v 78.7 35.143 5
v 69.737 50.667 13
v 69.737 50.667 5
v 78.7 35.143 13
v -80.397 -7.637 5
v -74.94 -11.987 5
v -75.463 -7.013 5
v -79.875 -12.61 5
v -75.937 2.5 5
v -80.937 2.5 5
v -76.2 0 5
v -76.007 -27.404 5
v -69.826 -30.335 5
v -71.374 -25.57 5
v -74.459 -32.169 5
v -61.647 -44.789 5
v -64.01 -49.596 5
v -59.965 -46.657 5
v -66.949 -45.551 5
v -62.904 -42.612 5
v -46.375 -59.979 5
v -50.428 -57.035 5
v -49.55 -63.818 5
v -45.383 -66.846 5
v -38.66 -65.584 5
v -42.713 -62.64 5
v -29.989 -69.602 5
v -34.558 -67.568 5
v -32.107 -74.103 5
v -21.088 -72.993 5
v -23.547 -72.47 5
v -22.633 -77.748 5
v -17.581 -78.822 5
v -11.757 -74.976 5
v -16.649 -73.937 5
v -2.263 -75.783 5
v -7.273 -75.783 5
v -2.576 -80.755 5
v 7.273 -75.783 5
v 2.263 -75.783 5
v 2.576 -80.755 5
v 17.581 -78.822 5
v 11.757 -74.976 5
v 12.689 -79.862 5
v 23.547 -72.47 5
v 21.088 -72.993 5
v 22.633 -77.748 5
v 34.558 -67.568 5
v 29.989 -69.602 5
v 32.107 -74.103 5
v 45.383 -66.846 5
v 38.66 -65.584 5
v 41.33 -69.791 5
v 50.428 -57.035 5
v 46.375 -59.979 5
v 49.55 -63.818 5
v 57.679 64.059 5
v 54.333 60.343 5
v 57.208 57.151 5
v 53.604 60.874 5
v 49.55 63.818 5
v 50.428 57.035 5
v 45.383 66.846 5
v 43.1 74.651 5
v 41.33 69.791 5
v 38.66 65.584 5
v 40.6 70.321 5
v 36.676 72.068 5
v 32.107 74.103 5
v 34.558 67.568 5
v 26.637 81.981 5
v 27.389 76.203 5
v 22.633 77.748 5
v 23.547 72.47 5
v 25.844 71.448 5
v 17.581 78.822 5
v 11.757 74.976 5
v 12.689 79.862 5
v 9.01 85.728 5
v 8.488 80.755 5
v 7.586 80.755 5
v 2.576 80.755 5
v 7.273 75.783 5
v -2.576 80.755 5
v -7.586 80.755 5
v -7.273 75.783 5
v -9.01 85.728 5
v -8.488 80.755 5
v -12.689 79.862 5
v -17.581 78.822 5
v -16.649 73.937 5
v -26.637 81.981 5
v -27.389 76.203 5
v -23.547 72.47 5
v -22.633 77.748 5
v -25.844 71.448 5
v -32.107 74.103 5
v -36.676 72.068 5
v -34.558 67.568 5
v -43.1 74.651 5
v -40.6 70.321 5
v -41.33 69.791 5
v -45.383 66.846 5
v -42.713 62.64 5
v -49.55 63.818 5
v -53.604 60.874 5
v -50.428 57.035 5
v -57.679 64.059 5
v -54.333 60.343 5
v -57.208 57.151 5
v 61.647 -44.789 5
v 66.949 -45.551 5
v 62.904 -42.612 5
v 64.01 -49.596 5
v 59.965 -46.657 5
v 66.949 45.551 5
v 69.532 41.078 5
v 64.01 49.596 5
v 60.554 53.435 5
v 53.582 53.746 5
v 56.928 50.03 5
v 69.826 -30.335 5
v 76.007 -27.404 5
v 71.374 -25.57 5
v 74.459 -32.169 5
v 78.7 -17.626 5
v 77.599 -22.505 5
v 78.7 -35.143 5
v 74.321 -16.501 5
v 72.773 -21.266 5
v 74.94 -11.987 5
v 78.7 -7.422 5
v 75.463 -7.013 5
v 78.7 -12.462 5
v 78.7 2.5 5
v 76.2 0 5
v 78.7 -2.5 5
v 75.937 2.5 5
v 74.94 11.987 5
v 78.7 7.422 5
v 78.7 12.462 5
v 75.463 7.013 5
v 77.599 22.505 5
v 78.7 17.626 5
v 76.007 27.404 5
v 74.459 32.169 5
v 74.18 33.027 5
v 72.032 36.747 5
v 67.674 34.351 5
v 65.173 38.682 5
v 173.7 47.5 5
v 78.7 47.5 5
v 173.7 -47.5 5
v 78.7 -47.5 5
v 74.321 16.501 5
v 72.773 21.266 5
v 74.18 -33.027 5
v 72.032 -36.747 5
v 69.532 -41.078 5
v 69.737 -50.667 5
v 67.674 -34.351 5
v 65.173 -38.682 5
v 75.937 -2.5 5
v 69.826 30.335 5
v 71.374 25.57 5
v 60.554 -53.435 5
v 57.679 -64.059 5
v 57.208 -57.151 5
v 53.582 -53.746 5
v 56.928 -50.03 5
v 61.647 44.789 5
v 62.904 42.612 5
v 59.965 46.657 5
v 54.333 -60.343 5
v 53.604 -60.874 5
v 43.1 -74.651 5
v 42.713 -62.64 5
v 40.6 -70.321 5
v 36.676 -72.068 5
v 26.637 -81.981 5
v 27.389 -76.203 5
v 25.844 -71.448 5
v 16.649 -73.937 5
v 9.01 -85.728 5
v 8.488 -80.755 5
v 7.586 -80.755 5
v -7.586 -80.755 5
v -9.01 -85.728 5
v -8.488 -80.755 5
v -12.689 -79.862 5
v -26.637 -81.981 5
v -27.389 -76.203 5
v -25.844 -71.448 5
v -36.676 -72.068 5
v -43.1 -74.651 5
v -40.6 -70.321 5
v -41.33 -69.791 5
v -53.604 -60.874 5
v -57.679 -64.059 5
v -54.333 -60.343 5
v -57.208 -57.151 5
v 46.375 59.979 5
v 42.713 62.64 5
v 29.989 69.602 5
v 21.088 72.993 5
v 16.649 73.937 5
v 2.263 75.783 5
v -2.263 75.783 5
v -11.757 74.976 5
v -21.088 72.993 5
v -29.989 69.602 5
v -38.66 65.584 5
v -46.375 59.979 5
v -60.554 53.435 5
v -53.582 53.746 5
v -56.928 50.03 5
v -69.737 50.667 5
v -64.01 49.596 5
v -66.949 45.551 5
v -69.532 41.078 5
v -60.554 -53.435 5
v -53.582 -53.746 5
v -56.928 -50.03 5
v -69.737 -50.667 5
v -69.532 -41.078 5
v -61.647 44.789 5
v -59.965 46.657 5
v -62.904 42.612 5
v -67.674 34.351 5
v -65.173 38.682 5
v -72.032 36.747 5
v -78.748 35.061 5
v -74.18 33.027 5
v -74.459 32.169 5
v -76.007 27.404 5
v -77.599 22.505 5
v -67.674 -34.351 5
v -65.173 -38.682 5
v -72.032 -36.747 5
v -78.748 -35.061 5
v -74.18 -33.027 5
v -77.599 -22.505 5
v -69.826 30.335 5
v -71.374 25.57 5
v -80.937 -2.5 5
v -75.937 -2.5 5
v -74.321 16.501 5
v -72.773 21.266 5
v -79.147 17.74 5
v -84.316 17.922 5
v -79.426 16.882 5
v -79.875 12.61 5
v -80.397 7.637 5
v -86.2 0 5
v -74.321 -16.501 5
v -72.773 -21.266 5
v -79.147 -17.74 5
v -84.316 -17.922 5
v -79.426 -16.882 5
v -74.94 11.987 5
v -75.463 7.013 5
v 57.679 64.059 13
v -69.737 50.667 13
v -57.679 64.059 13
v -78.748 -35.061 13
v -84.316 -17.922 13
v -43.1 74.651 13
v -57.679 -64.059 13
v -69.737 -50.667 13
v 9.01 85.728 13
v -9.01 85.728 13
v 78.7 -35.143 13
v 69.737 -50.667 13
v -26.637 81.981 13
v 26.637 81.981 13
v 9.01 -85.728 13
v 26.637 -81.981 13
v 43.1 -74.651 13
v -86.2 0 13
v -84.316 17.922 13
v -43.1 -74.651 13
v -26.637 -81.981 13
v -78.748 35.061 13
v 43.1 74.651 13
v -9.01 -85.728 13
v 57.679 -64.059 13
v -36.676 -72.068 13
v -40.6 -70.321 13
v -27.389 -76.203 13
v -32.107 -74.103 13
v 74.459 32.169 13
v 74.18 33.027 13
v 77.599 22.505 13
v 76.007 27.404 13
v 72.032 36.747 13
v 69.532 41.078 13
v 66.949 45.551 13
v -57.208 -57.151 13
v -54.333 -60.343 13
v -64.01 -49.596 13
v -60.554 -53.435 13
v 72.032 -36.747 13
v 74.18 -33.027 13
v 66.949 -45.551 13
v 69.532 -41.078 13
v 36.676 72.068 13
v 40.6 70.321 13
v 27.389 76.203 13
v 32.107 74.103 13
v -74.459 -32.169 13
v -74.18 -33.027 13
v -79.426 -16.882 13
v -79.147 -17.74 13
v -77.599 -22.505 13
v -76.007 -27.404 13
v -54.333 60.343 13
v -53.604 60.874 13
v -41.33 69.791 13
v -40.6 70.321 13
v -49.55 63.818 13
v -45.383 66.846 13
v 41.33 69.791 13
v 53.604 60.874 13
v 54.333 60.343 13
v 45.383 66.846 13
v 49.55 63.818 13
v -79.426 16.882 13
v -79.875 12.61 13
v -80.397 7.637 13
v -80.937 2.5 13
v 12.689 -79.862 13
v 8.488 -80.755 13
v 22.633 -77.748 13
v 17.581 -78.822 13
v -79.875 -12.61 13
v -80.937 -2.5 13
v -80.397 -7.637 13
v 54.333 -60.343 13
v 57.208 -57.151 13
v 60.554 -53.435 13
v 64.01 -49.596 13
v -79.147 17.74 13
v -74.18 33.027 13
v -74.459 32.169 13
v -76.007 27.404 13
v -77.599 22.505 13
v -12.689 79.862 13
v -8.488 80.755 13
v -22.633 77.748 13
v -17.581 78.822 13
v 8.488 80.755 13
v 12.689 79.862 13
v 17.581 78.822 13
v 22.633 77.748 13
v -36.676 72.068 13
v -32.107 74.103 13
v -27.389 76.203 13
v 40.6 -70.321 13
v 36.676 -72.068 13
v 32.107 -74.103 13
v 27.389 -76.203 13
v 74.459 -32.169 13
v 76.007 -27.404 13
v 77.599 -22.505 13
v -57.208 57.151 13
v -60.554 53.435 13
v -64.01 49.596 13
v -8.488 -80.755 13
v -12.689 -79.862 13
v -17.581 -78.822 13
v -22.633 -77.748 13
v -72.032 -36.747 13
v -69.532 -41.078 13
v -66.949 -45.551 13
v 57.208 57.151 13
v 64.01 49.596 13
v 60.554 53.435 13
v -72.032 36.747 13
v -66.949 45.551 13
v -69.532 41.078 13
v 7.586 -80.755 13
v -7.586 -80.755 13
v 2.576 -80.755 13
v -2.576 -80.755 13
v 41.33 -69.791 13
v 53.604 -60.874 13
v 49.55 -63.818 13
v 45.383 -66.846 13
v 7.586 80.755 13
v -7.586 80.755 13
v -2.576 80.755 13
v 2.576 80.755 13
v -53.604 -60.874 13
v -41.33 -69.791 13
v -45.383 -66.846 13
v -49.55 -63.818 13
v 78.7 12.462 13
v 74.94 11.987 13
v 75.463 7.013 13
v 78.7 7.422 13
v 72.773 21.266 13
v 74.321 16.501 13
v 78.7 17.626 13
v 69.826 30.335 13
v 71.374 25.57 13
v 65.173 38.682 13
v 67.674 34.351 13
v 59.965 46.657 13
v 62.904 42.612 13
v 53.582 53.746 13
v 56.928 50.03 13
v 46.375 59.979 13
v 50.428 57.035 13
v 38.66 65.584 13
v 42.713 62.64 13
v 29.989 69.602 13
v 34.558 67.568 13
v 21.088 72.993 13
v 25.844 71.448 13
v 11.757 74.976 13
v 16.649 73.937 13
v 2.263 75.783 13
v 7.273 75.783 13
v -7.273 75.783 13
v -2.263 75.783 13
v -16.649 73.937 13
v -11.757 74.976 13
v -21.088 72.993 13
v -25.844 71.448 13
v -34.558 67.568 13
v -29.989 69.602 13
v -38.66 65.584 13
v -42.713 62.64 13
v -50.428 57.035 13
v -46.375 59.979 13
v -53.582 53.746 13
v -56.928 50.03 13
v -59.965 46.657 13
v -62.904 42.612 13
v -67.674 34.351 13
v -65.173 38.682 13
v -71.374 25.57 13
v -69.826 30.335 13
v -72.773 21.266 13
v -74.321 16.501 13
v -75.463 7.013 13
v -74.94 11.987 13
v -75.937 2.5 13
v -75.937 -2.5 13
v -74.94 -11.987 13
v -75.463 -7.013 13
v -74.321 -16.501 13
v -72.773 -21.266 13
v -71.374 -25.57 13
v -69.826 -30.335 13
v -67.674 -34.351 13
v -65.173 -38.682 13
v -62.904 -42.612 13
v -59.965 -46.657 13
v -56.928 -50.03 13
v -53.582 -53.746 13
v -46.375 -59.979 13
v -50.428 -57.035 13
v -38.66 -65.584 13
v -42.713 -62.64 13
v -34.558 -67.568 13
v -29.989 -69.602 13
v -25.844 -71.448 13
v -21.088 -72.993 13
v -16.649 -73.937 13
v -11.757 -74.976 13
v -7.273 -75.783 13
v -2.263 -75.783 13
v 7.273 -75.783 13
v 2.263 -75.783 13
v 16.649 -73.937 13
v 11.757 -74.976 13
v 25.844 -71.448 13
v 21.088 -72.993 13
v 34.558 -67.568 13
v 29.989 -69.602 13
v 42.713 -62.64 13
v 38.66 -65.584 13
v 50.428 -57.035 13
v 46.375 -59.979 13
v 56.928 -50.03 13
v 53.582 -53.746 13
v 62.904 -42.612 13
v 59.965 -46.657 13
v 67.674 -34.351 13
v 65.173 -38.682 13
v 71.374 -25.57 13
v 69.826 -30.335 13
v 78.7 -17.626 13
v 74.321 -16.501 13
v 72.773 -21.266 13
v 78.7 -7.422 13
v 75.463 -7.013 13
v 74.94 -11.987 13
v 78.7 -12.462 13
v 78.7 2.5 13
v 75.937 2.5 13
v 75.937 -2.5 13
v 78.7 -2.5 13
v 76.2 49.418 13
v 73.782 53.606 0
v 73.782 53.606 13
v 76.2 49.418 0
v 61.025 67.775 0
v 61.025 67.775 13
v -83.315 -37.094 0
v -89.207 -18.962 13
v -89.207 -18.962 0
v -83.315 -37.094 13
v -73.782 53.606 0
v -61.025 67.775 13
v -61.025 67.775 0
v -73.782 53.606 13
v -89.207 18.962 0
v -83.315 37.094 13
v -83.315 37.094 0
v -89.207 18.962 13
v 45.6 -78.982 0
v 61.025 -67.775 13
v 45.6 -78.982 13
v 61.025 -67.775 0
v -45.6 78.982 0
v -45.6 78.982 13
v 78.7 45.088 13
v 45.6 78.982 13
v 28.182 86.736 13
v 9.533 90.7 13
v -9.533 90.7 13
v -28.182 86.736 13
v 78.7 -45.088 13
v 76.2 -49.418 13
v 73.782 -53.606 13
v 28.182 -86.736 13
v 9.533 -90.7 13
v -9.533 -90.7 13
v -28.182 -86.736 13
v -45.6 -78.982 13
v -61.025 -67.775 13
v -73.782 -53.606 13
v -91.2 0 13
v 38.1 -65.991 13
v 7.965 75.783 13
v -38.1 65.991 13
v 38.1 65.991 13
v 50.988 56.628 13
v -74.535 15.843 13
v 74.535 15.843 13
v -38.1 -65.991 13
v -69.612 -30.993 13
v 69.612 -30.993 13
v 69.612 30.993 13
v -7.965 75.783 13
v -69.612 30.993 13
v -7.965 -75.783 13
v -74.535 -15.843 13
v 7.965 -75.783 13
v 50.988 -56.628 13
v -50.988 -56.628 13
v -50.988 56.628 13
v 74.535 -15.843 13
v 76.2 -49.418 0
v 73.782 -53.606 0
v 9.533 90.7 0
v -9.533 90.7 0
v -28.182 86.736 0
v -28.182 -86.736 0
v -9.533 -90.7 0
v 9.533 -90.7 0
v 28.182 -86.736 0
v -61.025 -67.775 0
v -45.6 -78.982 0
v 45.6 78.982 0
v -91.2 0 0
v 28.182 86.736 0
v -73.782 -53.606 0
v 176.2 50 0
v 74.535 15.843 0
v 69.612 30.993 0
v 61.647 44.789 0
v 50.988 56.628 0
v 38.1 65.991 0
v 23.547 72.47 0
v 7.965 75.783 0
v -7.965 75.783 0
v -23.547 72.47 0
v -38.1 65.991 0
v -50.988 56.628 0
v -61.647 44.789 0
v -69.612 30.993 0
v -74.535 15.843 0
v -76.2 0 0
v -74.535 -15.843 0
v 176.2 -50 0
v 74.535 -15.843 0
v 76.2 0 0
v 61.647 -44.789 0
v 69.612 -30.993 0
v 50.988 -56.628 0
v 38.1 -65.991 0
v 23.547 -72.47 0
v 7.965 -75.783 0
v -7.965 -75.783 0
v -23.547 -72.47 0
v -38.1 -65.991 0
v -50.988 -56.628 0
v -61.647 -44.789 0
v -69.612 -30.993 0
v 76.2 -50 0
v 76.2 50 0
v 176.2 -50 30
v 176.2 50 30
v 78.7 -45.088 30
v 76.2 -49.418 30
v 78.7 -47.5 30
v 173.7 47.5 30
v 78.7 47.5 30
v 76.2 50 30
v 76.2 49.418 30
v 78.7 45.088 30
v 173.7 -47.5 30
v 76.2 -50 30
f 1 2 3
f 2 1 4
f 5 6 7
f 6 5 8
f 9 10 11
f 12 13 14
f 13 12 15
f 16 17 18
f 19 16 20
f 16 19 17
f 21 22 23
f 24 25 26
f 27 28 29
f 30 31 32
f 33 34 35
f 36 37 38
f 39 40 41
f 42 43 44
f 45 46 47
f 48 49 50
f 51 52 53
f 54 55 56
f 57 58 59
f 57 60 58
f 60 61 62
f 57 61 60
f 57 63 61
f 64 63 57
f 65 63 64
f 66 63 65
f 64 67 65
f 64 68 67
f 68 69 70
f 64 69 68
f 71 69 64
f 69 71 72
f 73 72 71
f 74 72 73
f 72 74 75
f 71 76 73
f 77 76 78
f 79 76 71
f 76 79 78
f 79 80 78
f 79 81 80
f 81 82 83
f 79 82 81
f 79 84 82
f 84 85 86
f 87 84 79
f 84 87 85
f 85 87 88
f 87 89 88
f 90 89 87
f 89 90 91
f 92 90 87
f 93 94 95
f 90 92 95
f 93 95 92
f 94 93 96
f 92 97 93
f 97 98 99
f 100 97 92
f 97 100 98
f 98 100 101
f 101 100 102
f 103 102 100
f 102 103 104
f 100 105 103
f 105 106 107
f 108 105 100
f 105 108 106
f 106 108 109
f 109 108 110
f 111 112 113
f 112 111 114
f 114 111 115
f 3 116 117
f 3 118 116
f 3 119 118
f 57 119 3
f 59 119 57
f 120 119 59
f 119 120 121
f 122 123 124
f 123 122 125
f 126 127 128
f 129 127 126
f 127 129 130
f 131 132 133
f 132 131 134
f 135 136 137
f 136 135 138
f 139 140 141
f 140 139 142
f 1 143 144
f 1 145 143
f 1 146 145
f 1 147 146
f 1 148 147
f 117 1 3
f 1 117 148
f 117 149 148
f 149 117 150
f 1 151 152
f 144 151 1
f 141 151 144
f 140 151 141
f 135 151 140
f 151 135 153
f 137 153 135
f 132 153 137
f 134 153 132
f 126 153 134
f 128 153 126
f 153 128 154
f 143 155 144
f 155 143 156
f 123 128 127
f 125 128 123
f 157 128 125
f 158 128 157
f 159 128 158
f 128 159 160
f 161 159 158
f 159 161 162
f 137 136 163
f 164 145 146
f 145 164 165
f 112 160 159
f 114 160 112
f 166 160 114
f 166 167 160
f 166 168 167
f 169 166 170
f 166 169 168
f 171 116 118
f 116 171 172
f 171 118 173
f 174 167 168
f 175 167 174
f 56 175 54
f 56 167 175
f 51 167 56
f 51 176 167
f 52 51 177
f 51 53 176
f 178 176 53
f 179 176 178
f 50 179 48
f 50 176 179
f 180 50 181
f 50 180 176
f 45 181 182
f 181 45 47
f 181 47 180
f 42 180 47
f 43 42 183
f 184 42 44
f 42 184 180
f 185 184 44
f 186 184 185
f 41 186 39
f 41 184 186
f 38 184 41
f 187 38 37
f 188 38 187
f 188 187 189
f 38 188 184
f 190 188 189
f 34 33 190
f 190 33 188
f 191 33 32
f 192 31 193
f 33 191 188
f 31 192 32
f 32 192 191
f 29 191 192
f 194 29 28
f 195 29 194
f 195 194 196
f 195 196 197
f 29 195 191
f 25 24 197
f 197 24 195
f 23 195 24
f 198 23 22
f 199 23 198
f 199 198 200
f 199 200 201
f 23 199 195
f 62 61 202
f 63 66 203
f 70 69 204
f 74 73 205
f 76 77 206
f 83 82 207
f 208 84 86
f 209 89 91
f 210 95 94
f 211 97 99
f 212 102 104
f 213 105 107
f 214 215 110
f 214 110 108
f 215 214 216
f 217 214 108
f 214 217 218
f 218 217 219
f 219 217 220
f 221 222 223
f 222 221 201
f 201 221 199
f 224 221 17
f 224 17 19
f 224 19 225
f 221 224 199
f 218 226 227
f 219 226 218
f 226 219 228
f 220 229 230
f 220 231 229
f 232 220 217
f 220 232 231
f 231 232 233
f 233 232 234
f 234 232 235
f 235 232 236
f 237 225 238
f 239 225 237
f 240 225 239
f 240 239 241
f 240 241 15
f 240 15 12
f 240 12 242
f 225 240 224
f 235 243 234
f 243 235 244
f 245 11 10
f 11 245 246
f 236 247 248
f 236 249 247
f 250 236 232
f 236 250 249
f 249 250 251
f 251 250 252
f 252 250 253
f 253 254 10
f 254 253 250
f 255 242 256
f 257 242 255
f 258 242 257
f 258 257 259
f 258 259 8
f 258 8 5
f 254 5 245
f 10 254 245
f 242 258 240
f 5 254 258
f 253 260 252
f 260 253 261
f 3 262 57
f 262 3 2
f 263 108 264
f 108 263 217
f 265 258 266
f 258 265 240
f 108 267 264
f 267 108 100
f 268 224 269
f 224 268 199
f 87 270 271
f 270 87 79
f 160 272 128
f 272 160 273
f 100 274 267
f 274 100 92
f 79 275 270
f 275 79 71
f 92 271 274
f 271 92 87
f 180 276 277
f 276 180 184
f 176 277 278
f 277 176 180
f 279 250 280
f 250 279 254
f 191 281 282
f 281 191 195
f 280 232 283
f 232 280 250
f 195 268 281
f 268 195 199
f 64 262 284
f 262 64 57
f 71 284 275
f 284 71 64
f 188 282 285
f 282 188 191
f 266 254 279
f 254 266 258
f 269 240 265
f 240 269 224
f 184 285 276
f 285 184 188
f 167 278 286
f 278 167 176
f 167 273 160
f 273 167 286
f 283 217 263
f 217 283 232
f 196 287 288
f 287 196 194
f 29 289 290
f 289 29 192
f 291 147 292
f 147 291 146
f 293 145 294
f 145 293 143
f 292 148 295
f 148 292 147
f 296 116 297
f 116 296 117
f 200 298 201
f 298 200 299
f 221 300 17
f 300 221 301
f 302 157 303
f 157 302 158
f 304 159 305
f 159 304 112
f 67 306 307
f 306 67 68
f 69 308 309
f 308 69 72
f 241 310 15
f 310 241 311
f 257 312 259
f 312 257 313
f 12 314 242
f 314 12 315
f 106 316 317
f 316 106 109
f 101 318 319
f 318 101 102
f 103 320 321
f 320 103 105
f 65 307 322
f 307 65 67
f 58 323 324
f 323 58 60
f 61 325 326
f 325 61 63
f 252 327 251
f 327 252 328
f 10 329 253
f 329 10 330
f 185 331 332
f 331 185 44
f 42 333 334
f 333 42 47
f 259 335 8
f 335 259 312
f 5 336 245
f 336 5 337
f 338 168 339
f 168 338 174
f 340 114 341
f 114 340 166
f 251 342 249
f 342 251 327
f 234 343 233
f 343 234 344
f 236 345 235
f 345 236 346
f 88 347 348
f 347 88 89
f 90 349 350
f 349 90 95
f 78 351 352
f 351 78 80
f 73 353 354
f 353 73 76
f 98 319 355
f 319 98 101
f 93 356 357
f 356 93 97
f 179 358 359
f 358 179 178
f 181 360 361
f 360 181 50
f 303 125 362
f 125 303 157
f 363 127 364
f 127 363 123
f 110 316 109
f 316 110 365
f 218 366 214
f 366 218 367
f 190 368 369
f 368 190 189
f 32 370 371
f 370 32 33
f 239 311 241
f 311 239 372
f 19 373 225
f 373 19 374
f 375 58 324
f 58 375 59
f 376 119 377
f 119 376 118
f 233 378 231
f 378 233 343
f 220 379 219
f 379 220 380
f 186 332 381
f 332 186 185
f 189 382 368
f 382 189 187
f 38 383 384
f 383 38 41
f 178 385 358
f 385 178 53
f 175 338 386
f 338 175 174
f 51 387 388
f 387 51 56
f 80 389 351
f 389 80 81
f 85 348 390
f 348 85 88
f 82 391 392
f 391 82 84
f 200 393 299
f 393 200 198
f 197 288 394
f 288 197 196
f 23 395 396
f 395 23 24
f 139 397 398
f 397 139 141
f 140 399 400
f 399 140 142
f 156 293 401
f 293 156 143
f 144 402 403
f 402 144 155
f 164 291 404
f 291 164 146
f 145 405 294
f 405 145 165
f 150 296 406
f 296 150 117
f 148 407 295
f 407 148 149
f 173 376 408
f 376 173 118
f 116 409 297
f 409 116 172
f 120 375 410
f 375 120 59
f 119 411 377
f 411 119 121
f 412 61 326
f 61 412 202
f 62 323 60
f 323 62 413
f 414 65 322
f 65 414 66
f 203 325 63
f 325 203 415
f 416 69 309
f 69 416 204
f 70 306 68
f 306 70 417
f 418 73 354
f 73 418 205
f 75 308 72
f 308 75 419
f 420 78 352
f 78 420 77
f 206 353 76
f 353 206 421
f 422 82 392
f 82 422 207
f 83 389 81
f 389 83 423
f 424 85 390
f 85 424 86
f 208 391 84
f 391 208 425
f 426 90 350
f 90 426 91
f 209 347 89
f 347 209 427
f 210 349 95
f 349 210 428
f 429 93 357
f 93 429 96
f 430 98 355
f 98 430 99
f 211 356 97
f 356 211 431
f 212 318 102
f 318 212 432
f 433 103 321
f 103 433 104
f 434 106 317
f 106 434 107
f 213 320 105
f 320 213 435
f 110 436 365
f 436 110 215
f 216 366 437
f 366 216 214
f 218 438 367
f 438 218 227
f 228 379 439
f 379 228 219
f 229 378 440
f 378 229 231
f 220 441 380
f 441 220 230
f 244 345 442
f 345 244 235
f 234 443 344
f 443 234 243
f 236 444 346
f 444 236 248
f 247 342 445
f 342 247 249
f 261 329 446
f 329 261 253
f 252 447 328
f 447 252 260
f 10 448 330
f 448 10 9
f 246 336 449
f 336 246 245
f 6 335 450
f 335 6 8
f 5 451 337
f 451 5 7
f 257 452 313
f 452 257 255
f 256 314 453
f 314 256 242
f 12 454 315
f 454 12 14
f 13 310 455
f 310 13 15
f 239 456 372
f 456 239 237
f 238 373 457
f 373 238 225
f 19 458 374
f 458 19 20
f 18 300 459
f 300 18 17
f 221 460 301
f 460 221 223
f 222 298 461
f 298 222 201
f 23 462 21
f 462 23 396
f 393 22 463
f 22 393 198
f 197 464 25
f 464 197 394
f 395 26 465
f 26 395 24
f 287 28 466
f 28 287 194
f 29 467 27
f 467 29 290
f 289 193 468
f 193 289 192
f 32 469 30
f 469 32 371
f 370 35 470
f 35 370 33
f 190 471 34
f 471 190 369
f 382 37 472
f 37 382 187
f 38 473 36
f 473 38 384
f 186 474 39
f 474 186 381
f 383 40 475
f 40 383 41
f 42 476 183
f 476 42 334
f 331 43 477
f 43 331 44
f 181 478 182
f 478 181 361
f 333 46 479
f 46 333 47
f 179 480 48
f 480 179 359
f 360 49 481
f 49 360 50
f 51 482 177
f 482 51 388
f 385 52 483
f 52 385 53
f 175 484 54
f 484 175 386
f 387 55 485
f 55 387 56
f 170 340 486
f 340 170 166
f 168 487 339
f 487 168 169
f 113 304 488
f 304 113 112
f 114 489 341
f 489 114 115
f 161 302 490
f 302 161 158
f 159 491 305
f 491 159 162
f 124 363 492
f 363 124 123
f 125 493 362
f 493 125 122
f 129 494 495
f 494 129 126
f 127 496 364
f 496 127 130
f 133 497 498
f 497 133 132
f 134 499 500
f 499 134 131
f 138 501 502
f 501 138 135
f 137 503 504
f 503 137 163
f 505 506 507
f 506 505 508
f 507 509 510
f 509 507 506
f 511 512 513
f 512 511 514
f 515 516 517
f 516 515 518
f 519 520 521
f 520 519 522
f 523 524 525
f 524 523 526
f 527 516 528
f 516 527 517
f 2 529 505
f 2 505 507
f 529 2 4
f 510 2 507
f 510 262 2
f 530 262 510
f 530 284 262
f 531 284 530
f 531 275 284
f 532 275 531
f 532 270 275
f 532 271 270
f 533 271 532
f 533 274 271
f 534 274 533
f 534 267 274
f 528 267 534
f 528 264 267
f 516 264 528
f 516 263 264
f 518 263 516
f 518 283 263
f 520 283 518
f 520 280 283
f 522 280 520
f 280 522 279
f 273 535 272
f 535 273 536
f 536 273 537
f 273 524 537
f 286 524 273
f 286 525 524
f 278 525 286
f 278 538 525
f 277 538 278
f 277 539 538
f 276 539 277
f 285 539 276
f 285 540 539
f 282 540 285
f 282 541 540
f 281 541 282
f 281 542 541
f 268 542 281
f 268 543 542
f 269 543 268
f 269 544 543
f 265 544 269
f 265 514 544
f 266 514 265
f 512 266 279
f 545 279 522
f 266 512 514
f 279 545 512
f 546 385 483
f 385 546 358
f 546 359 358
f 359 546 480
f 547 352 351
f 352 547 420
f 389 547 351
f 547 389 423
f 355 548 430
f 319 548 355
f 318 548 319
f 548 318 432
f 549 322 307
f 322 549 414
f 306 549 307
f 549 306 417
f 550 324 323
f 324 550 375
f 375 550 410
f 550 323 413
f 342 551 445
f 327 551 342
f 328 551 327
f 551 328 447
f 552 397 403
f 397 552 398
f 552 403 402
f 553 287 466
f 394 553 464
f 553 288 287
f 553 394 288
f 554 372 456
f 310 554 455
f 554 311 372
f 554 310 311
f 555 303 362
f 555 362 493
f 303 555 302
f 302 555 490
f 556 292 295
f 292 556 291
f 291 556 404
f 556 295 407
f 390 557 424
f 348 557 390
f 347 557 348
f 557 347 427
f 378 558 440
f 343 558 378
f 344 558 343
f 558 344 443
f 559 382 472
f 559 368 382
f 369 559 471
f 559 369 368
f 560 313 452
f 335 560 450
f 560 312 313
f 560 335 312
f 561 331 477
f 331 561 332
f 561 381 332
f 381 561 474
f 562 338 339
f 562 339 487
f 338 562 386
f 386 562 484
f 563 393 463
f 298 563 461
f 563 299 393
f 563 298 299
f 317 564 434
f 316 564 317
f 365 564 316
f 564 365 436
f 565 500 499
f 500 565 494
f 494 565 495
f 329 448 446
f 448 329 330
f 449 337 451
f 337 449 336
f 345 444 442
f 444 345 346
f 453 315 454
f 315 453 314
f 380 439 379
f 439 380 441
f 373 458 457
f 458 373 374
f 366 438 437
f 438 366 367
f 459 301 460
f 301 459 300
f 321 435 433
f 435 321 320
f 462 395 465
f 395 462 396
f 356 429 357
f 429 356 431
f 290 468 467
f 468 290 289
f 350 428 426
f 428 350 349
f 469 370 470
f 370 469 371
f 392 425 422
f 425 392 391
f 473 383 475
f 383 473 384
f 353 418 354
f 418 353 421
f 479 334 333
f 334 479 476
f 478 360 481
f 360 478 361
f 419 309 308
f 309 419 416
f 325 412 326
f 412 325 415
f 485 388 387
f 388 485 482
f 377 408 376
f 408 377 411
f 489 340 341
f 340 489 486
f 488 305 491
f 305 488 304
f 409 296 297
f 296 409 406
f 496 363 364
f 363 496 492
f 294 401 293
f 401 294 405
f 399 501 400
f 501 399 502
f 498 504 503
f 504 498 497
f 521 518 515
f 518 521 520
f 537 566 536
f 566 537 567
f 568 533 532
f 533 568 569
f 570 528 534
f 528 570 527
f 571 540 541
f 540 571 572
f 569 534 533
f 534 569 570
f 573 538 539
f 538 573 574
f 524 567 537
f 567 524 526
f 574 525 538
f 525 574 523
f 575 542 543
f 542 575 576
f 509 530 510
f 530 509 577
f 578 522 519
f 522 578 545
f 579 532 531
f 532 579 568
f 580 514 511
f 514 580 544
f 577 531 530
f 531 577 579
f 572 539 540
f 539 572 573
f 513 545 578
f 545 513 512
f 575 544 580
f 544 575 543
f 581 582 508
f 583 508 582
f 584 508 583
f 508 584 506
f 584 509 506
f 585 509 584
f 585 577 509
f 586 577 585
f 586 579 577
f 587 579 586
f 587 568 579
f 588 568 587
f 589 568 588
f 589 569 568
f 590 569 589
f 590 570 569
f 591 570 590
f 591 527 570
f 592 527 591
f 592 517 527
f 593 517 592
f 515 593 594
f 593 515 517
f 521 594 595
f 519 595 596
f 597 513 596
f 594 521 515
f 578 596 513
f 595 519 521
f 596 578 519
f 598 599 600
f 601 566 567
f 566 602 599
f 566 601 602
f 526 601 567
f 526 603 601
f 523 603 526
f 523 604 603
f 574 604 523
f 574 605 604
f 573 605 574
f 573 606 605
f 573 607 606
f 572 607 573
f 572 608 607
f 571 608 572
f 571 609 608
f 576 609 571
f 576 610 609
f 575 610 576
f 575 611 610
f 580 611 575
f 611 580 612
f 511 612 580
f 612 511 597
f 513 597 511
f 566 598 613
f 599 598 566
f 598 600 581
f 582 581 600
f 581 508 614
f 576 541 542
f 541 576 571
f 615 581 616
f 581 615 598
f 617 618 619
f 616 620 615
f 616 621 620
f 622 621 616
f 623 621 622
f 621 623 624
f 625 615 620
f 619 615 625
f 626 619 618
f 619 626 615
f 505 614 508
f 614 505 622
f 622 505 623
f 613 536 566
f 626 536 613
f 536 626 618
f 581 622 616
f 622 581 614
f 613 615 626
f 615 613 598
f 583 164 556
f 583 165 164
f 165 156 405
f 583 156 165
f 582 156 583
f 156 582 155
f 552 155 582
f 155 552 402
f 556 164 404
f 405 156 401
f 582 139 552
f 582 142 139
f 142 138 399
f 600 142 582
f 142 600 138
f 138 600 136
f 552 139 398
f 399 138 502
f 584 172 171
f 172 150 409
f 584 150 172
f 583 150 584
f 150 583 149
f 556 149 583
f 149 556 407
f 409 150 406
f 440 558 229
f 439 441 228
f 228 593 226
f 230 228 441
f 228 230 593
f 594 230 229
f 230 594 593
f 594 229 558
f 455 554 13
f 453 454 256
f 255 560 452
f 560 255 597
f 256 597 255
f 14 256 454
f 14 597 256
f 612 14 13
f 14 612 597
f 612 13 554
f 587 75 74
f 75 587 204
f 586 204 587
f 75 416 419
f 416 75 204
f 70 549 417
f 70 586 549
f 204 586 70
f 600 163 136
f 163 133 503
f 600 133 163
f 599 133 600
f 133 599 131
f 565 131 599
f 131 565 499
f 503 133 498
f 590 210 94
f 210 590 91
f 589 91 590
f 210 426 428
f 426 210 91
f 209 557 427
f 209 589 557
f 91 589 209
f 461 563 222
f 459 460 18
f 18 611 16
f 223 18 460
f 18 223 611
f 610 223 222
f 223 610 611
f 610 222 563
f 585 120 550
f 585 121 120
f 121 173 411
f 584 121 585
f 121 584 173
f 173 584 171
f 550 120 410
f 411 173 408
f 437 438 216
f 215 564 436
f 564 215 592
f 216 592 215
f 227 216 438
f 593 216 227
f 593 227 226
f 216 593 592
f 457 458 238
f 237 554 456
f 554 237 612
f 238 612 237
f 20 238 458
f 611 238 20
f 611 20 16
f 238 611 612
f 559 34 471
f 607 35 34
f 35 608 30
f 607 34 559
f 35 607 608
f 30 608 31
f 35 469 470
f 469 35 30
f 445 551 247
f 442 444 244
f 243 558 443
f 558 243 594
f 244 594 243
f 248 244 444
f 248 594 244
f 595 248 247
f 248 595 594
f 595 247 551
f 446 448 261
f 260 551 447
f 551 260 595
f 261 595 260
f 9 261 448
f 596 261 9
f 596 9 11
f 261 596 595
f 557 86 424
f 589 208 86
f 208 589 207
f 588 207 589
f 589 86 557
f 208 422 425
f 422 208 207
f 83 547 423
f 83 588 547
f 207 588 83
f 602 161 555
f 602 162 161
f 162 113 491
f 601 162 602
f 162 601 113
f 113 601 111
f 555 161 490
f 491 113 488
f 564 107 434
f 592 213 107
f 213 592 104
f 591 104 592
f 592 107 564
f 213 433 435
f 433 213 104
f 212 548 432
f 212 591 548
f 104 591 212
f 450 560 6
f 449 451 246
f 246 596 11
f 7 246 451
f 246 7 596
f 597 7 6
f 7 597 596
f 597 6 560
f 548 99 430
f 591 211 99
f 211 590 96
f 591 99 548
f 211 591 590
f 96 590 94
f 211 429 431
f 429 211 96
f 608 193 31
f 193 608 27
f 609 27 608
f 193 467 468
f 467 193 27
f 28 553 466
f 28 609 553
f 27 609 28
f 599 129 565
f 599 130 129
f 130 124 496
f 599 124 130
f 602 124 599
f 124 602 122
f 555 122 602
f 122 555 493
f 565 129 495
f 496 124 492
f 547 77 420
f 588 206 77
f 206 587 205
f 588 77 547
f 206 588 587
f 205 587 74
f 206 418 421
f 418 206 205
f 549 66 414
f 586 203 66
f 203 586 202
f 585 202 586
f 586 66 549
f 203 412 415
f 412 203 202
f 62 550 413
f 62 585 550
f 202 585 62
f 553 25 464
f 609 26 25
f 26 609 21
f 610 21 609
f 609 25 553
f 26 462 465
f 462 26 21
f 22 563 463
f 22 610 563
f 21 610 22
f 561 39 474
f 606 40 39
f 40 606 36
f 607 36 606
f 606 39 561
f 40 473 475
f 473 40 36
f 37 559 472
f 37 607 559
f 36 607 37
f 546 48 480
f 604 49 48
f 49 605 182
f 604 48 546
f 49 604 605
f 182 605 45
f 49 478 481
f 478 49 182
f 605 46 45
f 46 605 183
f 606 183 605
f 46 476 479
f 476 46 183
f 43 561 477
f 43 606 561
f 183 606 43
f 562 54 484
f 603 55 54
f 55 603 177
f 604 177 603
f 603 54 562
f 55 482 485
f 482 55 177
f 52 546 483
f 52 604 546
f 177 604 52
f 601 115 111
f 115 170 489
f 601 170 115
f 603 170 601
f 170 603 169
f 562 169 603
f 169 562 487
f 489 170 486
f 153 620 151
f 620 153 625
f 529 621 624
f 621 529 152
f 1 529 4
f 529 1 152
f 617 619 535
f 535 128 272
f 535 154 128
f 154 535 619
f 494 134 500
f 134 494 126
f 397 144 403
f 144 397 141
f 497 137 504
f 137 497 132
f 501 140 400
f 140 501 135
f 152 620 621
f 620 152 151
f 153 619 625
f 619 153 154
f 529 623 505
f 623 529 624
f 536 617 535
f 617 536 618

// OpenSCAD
// LED strip 5x13

// TODO: Cut-out and mount for range sensor

WALL_THICKNESS = 5;
HOLE_DIAMETER = 152.4;          // 6"
LED_STRIP_WIDTH = 13;
LED_STRIP_HEIGHT = 5;
LED_STRIP_LENGTH = 0;           // no idea yet
BOARD_THICKNESS = 6.35;         // .25"
LED_BRACKET_THICKNESS = 5;
LED_COUNT = 50;                 // Determines the number and width of brackets
ELECTRONICS_BOX_LENGTH = 100;   // guess
ELECTRONICS_BOX_WIDTH = 100;    // guess
ELECTRONICS_BOX_HEIGHT = 30;    // guess

difference(){

    // case body
    union(){

        // light ring
        cylinder(
            r=(HOLE_DIAMETER/2)+LED_STRIP_HEIGHT+LED_BRACKET_THICKNESS+WALL_THICKNESS,
            h=LED_STRIP_WIDTH
        );

        // electronics box
        translate([HOLE_DIAMETER/2,-ELECTRONICS_BOX_WIDTH/2,0]){
            cube([ELECTRONICS_BOX_LENGTH,ELECTRONICS_BOX_WIDTH,ELECTRONICS_BOX_HEIGHT]);
        }
    }

    // corn hole
    cylinder(r=HOLE_DIAMETER/2, h=LED_STRIP_WIDTH);

    // electronics box openings
    translate([
        (HOLE_DIAMETER+WALL_THICKNESS)/2,
        -(ELECTRONICS_BOX_WIDTH-WALL_THICKNESS)/2,
        WALL_THICKNESS
    ]){
        cube([
            ELECTRONICS_BOX_LENGTH-WALL_THICKNESS,
            ELECTRONICS_BOX_WIDTH-WALL_THICKNESS,
            ELECTRONICS_BOX_HEIGHT-WALL_THICKNESS
        ]);
    }
    translate([0,0,LED_STRIP_WIDTH]){
        #cylinder(
            r=(HOLE_DIAMETER/2)+LED_STRIP_HEIGHT+LED_BRACKET_THICKNESS+WALL_THICKNESS,
            h=LED_STRIP_WIDTH*2
        );
    }

    // LED openings
    translate([0,0,WALL_THICKNESS]){
        for (i=[1:LED_COUNT]){
            rotate([0,0,(360/LED_COUNT)*i]){
                translate([(HOLE_DIAMETER/2)-1, -5/2, 0]){
                    #cube([LED_BRACKET_THICKNESS*2, 5, LED_STRIP_WIDTH]);
                }
            }
        }
    }

    // LED strip
    translate([0,0,WALL_THICKNESS]){
        difference(){
            cylinder(r=(HOLE_DIAMETER/2)+LED_STRIP_HEIGHT+LED_BRACKET_THICKNESS, h=LED_STRIP_WIDTH);
            cylinder(r=(HOLE_DIAMETER/2)+LED_BRACKET_THICKNESS, h=LED_STRIP_WIDTH);
        }
    }
}
